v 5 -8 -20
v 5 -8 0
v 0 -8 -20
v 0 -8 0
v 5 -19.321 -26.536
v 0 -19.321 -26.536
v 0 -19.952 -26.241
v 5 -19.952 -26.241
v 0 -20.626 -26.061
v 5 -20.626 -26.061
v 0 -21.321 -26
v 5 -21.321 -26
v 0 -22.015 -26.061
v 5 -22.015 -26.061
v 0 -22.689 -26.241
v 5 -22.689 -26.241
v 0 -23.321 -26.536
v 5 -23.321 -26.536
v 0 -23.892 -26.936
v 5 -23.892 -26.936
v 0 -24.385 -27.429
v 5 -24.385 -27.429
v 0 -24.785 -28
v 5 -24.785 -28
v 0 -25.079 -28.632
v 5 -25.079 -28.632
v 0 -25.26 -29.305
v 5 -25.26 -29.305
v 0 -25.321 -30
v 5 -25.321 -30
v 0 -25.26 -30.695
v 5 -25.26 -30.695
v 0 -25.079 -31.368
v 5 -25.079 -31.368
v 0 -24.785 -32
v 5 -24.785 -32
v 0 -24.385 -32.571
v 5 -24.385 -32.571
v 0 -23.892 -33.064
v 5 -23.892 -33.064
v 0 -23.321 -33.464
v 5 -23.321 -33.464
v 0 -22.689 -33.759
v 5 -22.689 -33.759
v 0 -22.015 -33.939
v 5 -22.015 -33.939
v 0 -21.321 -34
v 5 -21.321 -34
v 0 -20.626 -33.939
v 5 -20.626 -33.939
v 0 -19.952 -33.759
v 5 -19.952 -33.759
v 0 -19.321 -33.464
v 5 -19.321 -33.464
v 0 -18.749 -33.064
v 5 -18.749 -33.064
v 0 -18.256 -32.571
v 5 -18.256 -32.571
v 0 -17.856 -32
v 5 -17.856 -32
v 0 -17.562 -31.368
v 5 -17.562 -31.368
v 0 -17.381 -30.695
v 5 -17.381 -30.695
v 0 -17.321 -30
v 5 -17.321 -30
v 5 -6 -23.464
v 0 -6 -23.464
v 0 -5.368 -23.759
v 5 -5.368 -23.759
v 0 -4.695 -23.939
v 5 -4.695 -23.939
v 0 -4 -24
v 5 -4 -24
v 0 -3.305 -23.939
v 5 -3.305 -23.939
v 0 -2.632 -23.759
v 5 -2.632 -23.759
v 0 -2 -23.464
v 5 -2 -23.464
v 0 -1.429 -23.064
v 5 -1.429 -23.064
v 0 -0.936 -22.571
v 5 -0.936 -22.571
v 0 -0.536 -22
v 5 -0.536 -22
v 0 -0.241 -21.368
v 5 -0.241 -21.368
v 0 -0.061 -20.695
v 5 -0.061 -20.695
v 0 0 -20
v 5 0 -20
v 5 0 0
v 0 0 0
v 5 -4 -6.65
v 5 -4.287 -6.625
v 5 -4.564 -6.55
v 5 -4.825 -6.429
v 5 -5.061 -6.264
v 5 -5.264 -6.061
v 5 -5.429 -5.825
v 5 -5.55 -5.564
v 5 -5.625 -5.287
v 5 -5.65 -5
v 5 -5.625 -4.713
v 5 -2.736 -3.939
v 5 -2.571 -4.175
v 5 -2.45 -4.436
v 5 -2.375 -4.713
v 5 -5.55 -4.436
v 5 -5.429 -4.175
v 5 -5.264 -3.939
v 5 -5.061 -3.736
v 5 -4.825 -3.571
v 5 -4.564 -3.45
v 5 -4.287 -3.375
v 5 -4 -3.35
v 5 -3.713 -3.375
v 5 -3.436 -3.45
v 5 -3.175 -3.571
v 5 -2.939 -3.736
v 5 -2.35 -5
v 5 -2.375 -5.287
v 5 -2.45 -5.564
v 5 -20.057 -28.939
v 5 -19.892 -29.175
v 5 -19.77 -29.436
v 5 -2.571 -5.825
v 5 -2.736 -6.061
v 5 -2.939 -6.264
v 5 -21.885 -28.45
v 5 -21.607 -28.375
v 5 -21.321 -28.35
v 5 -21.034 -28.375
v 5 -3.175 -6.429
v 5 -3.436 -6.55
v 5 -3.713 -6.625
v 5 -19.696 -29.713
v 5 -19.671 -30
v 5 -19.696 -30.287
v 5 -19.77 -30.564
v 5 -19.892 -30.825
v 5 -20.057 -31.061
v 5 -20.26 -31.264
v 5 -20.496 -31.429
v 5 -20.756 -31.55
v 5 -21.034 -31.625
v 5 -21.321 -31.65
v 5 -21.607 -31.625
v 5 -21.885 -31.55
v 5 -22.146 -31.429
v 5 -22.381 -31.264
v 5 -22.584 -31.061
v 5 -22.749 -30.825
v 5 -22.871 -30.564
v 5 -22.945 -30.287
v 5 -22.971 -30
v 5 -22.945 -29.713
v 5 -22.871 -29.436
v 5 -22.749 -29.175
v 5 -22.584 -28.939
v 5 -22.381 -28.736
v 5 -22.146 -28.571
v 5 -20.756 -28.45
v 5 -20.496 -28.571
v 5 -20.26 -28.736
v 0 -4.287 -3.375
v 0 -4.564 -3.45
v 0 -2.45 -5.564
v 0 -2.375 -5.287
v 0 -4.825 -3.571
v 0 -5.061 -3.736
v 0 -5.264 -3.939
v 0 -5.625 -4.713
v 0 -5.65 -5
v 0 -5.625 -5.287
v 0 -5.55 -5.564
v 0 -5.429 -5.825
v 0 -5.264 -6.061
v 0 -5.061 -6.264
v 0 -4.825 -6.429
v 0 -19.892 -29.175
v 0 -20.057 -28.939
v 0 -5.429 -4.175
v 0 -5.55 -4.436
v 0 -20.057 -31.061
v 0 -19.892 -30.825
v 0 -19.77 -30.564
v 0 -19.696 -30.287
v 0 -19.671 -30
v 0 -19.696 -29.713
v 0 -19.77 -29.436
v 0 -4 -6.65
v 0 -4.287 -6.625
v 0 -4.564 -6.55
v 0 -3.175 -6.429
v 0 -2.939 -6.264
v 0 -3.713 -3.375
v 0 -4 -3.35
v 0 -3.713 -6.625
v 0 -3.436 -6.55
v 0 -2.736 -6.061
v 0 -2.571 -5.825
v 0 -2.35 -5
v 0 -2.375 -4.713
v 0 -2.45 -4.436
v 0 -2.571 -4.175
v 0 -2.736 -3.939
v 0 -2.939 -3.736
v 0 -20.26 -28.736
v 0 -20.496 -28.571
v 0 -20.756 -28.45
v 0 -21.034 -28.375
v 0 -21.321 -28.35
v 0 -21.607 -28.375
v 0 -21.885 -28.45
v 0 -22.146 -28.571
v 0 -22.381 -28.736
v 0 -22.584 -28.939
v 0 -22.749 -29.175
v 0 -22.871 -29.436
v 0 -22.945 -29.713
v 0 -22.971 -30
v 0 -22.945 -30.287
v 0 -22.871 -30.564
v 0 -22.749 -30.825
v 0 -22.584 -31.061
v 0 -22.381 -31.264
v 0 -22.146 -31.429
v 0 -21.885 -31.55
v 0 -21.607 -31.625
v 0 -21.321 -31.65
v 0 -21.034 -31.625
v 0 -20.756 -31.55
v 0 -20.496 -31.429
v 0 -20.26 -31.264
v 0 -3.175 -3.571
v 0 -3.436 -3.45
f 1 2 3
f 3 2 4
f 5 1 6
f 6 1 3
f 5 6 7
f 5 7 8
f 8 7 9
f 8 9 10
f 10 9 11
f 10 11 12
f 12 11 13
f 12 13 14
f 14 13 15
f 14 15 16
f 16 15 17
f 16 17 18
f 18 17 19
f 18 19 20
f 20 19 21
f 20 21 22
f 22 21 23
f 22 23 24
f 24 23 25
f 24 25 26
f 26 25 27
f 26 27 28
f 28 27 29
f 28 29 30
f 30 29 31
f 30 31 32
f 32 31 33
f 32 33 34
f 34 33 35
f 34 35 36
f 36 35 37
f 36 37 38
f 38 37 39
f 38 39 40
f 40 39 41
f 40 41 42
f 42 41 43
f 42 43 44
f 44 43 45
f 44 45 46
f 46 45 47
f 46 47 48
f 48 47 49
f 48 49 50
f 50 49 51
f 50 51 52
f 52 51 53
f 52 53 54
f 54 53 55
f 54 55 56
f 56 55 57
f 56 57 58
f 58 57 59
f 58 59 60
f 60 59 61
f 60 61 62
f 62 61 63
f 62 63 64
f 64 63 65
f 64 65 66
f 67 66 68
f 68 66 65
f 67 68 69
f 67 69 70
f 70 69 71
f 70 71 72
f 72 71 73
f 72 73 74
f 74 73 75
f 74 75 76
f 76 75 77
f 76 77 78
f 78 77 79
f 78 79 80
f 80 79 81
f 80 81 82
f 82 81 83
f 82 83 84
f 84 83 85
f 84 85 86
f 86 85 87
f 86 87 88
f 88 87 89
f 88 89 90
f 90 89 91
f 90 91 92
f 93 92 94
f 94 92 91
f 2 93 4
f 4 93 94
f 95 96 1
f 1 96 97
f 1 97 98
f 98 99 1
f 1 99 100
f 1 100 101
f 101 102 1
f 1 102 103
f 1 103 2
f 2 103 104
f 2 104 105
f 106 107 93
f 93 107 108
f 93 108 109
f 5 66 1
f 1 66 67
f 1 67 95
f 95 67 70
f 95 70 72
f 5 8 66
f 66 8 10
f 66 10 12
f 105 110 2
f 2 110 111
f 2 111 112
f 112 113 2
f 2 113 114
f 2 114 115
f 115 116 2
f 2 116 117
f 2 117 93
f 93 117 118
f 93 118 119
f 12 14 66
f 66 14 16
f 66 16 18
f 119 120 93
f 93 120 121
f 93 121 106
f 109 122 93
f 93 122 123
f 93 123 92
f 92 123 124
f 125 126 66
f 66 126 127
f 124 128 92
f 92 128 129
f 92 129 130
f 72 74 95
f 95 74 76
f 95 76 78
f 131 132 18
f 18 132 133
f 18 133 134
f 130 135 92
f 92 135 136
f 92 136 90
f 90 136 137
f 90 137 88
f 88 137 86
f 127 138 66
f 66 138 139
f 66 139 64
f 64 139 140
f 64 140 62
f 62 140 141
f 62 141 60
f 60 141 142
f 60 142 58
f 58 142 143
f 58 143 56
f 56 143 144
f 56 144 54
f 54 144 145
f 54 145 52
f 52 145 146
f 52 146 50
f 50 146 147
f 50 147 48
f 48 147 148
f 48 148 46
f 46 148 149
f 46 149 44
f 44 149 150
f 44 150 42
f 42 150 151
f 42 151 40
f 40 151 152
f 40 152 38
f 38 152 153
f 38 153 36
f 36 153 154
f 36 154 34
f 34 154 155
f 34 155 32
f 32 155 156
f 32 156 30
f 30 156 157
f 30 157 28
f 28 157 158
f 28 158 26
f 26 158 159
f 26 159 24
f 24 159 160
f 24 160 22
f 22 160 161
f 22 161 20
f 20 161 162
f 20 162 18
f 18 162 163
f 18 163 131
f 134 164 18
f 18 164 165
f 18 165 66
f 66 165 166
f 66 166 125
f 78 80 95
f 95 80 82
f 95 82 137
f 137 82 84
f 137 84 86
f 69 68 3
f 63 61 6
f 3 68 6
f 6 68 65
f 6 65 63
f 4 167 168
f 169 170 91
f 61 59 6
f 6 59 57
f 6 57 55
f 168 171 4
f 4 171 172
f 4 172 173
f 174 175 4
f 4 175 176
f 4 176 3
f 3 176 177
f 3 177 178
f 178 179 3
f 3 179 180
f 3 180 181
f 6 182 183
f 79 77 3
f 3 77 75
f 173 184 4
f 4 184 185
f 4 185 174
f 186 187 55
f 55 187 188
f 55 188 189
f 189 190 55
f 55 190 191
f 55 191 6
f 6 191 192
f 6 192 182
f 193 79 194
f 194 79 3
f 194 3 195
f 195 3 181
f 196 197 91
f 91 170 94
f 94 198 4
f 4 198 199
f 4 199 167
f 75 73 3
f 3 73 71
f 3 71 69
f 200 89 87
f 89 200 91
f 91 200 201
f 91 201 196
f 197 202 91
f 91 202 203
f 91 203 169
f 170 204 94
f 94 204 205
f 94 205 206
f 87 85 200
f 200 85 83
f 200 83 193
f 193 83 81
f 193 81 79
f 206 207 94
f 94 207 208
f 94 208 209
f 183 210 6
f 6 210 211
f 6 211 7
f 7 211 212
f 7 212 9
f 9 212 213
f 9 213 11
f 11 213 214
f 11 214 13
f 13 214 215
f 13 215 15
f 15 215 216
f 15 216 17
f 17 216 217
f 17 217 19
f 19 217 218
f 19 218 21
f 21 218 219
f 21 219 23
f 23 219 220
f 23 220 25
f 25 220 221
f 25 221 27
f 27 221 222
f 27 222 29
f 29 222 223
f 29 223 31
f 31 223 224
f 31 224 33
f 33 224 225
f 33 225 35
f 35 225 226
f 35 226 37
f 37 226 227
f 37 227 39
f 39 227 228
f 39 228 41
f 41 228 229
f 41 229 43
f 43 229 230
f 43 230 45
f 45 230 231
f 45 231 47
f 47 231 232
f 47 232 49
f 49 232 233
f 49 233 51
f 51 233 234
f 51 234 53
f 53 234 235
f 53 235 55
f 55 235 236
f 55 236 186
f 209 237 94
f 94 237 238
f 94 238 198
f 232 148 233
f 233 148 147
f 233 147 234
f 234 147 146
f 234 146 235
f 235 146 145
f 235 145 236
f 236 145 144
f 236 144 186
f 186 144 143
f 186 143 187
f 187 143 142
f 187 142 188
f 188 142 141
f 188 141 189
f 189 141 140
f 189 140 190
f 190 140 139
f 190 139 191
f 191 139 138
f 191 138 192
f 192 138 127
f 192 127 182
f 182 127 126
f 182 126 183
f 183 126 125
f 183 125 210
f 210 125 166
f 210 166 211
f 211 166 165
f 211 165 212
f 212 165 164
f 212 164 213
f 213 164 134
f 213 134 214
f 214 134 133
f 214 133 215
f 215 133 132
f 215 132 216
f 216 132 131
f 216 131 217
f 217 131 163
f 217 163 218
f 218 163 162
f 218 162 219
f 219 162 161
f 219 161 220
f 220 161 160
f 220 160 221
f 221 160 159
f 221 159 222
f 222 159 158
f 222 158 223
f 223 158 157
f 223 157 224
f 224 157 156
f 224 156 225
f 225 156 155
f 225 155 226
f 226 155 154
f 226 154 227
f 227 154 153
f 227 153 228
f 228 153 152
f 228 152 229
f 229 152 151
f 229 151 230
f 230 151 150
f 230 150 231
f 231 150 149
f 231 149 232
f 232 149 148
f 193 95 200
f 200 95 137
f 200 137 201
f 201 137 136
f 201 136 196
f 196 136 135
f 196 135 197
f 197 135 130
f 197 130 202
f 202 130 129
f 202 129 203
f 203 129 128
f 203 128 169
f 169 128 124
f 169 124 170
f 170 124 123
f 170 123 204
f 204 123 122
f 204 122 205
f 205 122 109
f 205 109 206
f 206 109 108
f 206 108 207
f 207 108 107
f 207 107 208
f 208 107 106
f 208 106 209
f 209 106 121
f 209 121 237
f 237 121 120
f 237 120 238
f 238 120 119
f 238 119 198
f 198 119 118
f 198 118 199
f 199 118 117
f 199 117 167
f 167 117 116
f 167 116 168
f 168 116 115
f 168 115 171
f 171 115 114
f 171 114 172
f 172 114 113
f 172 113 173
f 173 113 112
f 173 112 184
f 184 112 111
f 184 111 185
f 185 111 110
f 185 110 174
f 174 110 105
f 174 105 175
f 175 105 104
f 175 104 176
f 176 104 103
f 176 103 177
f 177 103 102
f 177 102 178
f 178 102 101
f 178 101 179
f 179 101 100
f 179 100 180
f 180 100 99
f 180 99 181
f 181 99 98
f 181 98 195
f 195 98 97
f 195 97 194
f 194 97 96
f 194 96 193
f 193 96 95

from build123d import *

# Parameters (mm, degrees)
EXTRUDE_1_DEPTH     = 5
SKETCH_2_R          = 1.65
CUT_EXTRUDE_1_DEPTH = 10


with BuildPart() as part:
    # 草图1 → 凸台-拉伸1 (new body)
    with BuildSketch(Plane(origin=(0, 0, 0), x_dir=(0, 0, -1), z_dir=(1, 0, 0))):
        with BuildLine():
            ThreePointArc((20, -8), (16, -4), (20, 0))
            Line((20, 0), (0, 0))
            Line((0, 0), (0, -8))
            Line((0, -8), (20, -8))
        make_face()
        with BuildLine():
            Line((20, -8), (20, 0))
            ThreePointArc((20, 0), (16, -4), (20, -8))
        make_face()
        with BuildLine():
            Line((23.464101615, -6), (20, 0))
            Line((20, 0), (20, -8))
            ThreePointArc((20, -8), (22, -7.464101615), (23.464101615, -6))
        make_face()
        with BuildLine():
            ThreePointArc((24, -4), (22.828427125, -1.171572875), (20, 0))
            Line((20, 0), (23.464101615, -6))
            ThreePointArc((23.464101615, -6), (23.863703305, -5.03527618), (24, -4))
        make_face()
        with BuildLine():
            Line((30, -17.320508076), (23.464101615, -6))
            ThreePointArc((23.464101615, -6), (22, -7.464101615), (20, -8))
            Line((20, -8), (26.535898385, -19.320508076))
            ThreePointArc((26.535898385, -19.320508076), (28, -17.856406461), (30, -17.320508076))
        make_face()
        with BuildLine():
            ThreePointArc((34, -21.320508076), (32.828427125, -18.492080951), (30, -17.320508076))
            Line((30, -17.320508076), (30, -25.320508076))
            ThreePointArc((30, -25.320508076), (32.828427125, -24.1489352), (34, -21.320508076))
        make_face()
        with BuildLine():
            Line((30, -25.320508076), (30, -17.320508076))
            ThreePointArc((30, -17.320508076), (28, -17.856406461), (26.535898385, -19.320508076))
            Line((26.535898385, -19.320508076), (30, -25.320508076))
        make_face()
        with BuildLine():
            Line((30, -25.320508076), (26.535898385, -19.320508076))
            ThreePointArc((26.535898385, -19.320508076), (26.535898385, -23.320508076), (30, -25.320508076))
        make_face()
    extrude(amount=EXTRUDE_1_DEPTH)

    # 草图2 → 切除-拉伸1 (cut)
    with BuildSketch(Plane(origin=(5, 0, 0), x_dir=(0, 0, -1), z_dir=(1, 0, 0))):
        with Locations((5, -4)):
            Circle(SKETCH_2_R)
        with Locations((30, -21.320508076)):
            Circle(SKETCH_2_R)
    extrude(amount=-CUT_EXTRUDE_1_DEPTH, mode=Mode.SUBTRACT)


solid = part.part
